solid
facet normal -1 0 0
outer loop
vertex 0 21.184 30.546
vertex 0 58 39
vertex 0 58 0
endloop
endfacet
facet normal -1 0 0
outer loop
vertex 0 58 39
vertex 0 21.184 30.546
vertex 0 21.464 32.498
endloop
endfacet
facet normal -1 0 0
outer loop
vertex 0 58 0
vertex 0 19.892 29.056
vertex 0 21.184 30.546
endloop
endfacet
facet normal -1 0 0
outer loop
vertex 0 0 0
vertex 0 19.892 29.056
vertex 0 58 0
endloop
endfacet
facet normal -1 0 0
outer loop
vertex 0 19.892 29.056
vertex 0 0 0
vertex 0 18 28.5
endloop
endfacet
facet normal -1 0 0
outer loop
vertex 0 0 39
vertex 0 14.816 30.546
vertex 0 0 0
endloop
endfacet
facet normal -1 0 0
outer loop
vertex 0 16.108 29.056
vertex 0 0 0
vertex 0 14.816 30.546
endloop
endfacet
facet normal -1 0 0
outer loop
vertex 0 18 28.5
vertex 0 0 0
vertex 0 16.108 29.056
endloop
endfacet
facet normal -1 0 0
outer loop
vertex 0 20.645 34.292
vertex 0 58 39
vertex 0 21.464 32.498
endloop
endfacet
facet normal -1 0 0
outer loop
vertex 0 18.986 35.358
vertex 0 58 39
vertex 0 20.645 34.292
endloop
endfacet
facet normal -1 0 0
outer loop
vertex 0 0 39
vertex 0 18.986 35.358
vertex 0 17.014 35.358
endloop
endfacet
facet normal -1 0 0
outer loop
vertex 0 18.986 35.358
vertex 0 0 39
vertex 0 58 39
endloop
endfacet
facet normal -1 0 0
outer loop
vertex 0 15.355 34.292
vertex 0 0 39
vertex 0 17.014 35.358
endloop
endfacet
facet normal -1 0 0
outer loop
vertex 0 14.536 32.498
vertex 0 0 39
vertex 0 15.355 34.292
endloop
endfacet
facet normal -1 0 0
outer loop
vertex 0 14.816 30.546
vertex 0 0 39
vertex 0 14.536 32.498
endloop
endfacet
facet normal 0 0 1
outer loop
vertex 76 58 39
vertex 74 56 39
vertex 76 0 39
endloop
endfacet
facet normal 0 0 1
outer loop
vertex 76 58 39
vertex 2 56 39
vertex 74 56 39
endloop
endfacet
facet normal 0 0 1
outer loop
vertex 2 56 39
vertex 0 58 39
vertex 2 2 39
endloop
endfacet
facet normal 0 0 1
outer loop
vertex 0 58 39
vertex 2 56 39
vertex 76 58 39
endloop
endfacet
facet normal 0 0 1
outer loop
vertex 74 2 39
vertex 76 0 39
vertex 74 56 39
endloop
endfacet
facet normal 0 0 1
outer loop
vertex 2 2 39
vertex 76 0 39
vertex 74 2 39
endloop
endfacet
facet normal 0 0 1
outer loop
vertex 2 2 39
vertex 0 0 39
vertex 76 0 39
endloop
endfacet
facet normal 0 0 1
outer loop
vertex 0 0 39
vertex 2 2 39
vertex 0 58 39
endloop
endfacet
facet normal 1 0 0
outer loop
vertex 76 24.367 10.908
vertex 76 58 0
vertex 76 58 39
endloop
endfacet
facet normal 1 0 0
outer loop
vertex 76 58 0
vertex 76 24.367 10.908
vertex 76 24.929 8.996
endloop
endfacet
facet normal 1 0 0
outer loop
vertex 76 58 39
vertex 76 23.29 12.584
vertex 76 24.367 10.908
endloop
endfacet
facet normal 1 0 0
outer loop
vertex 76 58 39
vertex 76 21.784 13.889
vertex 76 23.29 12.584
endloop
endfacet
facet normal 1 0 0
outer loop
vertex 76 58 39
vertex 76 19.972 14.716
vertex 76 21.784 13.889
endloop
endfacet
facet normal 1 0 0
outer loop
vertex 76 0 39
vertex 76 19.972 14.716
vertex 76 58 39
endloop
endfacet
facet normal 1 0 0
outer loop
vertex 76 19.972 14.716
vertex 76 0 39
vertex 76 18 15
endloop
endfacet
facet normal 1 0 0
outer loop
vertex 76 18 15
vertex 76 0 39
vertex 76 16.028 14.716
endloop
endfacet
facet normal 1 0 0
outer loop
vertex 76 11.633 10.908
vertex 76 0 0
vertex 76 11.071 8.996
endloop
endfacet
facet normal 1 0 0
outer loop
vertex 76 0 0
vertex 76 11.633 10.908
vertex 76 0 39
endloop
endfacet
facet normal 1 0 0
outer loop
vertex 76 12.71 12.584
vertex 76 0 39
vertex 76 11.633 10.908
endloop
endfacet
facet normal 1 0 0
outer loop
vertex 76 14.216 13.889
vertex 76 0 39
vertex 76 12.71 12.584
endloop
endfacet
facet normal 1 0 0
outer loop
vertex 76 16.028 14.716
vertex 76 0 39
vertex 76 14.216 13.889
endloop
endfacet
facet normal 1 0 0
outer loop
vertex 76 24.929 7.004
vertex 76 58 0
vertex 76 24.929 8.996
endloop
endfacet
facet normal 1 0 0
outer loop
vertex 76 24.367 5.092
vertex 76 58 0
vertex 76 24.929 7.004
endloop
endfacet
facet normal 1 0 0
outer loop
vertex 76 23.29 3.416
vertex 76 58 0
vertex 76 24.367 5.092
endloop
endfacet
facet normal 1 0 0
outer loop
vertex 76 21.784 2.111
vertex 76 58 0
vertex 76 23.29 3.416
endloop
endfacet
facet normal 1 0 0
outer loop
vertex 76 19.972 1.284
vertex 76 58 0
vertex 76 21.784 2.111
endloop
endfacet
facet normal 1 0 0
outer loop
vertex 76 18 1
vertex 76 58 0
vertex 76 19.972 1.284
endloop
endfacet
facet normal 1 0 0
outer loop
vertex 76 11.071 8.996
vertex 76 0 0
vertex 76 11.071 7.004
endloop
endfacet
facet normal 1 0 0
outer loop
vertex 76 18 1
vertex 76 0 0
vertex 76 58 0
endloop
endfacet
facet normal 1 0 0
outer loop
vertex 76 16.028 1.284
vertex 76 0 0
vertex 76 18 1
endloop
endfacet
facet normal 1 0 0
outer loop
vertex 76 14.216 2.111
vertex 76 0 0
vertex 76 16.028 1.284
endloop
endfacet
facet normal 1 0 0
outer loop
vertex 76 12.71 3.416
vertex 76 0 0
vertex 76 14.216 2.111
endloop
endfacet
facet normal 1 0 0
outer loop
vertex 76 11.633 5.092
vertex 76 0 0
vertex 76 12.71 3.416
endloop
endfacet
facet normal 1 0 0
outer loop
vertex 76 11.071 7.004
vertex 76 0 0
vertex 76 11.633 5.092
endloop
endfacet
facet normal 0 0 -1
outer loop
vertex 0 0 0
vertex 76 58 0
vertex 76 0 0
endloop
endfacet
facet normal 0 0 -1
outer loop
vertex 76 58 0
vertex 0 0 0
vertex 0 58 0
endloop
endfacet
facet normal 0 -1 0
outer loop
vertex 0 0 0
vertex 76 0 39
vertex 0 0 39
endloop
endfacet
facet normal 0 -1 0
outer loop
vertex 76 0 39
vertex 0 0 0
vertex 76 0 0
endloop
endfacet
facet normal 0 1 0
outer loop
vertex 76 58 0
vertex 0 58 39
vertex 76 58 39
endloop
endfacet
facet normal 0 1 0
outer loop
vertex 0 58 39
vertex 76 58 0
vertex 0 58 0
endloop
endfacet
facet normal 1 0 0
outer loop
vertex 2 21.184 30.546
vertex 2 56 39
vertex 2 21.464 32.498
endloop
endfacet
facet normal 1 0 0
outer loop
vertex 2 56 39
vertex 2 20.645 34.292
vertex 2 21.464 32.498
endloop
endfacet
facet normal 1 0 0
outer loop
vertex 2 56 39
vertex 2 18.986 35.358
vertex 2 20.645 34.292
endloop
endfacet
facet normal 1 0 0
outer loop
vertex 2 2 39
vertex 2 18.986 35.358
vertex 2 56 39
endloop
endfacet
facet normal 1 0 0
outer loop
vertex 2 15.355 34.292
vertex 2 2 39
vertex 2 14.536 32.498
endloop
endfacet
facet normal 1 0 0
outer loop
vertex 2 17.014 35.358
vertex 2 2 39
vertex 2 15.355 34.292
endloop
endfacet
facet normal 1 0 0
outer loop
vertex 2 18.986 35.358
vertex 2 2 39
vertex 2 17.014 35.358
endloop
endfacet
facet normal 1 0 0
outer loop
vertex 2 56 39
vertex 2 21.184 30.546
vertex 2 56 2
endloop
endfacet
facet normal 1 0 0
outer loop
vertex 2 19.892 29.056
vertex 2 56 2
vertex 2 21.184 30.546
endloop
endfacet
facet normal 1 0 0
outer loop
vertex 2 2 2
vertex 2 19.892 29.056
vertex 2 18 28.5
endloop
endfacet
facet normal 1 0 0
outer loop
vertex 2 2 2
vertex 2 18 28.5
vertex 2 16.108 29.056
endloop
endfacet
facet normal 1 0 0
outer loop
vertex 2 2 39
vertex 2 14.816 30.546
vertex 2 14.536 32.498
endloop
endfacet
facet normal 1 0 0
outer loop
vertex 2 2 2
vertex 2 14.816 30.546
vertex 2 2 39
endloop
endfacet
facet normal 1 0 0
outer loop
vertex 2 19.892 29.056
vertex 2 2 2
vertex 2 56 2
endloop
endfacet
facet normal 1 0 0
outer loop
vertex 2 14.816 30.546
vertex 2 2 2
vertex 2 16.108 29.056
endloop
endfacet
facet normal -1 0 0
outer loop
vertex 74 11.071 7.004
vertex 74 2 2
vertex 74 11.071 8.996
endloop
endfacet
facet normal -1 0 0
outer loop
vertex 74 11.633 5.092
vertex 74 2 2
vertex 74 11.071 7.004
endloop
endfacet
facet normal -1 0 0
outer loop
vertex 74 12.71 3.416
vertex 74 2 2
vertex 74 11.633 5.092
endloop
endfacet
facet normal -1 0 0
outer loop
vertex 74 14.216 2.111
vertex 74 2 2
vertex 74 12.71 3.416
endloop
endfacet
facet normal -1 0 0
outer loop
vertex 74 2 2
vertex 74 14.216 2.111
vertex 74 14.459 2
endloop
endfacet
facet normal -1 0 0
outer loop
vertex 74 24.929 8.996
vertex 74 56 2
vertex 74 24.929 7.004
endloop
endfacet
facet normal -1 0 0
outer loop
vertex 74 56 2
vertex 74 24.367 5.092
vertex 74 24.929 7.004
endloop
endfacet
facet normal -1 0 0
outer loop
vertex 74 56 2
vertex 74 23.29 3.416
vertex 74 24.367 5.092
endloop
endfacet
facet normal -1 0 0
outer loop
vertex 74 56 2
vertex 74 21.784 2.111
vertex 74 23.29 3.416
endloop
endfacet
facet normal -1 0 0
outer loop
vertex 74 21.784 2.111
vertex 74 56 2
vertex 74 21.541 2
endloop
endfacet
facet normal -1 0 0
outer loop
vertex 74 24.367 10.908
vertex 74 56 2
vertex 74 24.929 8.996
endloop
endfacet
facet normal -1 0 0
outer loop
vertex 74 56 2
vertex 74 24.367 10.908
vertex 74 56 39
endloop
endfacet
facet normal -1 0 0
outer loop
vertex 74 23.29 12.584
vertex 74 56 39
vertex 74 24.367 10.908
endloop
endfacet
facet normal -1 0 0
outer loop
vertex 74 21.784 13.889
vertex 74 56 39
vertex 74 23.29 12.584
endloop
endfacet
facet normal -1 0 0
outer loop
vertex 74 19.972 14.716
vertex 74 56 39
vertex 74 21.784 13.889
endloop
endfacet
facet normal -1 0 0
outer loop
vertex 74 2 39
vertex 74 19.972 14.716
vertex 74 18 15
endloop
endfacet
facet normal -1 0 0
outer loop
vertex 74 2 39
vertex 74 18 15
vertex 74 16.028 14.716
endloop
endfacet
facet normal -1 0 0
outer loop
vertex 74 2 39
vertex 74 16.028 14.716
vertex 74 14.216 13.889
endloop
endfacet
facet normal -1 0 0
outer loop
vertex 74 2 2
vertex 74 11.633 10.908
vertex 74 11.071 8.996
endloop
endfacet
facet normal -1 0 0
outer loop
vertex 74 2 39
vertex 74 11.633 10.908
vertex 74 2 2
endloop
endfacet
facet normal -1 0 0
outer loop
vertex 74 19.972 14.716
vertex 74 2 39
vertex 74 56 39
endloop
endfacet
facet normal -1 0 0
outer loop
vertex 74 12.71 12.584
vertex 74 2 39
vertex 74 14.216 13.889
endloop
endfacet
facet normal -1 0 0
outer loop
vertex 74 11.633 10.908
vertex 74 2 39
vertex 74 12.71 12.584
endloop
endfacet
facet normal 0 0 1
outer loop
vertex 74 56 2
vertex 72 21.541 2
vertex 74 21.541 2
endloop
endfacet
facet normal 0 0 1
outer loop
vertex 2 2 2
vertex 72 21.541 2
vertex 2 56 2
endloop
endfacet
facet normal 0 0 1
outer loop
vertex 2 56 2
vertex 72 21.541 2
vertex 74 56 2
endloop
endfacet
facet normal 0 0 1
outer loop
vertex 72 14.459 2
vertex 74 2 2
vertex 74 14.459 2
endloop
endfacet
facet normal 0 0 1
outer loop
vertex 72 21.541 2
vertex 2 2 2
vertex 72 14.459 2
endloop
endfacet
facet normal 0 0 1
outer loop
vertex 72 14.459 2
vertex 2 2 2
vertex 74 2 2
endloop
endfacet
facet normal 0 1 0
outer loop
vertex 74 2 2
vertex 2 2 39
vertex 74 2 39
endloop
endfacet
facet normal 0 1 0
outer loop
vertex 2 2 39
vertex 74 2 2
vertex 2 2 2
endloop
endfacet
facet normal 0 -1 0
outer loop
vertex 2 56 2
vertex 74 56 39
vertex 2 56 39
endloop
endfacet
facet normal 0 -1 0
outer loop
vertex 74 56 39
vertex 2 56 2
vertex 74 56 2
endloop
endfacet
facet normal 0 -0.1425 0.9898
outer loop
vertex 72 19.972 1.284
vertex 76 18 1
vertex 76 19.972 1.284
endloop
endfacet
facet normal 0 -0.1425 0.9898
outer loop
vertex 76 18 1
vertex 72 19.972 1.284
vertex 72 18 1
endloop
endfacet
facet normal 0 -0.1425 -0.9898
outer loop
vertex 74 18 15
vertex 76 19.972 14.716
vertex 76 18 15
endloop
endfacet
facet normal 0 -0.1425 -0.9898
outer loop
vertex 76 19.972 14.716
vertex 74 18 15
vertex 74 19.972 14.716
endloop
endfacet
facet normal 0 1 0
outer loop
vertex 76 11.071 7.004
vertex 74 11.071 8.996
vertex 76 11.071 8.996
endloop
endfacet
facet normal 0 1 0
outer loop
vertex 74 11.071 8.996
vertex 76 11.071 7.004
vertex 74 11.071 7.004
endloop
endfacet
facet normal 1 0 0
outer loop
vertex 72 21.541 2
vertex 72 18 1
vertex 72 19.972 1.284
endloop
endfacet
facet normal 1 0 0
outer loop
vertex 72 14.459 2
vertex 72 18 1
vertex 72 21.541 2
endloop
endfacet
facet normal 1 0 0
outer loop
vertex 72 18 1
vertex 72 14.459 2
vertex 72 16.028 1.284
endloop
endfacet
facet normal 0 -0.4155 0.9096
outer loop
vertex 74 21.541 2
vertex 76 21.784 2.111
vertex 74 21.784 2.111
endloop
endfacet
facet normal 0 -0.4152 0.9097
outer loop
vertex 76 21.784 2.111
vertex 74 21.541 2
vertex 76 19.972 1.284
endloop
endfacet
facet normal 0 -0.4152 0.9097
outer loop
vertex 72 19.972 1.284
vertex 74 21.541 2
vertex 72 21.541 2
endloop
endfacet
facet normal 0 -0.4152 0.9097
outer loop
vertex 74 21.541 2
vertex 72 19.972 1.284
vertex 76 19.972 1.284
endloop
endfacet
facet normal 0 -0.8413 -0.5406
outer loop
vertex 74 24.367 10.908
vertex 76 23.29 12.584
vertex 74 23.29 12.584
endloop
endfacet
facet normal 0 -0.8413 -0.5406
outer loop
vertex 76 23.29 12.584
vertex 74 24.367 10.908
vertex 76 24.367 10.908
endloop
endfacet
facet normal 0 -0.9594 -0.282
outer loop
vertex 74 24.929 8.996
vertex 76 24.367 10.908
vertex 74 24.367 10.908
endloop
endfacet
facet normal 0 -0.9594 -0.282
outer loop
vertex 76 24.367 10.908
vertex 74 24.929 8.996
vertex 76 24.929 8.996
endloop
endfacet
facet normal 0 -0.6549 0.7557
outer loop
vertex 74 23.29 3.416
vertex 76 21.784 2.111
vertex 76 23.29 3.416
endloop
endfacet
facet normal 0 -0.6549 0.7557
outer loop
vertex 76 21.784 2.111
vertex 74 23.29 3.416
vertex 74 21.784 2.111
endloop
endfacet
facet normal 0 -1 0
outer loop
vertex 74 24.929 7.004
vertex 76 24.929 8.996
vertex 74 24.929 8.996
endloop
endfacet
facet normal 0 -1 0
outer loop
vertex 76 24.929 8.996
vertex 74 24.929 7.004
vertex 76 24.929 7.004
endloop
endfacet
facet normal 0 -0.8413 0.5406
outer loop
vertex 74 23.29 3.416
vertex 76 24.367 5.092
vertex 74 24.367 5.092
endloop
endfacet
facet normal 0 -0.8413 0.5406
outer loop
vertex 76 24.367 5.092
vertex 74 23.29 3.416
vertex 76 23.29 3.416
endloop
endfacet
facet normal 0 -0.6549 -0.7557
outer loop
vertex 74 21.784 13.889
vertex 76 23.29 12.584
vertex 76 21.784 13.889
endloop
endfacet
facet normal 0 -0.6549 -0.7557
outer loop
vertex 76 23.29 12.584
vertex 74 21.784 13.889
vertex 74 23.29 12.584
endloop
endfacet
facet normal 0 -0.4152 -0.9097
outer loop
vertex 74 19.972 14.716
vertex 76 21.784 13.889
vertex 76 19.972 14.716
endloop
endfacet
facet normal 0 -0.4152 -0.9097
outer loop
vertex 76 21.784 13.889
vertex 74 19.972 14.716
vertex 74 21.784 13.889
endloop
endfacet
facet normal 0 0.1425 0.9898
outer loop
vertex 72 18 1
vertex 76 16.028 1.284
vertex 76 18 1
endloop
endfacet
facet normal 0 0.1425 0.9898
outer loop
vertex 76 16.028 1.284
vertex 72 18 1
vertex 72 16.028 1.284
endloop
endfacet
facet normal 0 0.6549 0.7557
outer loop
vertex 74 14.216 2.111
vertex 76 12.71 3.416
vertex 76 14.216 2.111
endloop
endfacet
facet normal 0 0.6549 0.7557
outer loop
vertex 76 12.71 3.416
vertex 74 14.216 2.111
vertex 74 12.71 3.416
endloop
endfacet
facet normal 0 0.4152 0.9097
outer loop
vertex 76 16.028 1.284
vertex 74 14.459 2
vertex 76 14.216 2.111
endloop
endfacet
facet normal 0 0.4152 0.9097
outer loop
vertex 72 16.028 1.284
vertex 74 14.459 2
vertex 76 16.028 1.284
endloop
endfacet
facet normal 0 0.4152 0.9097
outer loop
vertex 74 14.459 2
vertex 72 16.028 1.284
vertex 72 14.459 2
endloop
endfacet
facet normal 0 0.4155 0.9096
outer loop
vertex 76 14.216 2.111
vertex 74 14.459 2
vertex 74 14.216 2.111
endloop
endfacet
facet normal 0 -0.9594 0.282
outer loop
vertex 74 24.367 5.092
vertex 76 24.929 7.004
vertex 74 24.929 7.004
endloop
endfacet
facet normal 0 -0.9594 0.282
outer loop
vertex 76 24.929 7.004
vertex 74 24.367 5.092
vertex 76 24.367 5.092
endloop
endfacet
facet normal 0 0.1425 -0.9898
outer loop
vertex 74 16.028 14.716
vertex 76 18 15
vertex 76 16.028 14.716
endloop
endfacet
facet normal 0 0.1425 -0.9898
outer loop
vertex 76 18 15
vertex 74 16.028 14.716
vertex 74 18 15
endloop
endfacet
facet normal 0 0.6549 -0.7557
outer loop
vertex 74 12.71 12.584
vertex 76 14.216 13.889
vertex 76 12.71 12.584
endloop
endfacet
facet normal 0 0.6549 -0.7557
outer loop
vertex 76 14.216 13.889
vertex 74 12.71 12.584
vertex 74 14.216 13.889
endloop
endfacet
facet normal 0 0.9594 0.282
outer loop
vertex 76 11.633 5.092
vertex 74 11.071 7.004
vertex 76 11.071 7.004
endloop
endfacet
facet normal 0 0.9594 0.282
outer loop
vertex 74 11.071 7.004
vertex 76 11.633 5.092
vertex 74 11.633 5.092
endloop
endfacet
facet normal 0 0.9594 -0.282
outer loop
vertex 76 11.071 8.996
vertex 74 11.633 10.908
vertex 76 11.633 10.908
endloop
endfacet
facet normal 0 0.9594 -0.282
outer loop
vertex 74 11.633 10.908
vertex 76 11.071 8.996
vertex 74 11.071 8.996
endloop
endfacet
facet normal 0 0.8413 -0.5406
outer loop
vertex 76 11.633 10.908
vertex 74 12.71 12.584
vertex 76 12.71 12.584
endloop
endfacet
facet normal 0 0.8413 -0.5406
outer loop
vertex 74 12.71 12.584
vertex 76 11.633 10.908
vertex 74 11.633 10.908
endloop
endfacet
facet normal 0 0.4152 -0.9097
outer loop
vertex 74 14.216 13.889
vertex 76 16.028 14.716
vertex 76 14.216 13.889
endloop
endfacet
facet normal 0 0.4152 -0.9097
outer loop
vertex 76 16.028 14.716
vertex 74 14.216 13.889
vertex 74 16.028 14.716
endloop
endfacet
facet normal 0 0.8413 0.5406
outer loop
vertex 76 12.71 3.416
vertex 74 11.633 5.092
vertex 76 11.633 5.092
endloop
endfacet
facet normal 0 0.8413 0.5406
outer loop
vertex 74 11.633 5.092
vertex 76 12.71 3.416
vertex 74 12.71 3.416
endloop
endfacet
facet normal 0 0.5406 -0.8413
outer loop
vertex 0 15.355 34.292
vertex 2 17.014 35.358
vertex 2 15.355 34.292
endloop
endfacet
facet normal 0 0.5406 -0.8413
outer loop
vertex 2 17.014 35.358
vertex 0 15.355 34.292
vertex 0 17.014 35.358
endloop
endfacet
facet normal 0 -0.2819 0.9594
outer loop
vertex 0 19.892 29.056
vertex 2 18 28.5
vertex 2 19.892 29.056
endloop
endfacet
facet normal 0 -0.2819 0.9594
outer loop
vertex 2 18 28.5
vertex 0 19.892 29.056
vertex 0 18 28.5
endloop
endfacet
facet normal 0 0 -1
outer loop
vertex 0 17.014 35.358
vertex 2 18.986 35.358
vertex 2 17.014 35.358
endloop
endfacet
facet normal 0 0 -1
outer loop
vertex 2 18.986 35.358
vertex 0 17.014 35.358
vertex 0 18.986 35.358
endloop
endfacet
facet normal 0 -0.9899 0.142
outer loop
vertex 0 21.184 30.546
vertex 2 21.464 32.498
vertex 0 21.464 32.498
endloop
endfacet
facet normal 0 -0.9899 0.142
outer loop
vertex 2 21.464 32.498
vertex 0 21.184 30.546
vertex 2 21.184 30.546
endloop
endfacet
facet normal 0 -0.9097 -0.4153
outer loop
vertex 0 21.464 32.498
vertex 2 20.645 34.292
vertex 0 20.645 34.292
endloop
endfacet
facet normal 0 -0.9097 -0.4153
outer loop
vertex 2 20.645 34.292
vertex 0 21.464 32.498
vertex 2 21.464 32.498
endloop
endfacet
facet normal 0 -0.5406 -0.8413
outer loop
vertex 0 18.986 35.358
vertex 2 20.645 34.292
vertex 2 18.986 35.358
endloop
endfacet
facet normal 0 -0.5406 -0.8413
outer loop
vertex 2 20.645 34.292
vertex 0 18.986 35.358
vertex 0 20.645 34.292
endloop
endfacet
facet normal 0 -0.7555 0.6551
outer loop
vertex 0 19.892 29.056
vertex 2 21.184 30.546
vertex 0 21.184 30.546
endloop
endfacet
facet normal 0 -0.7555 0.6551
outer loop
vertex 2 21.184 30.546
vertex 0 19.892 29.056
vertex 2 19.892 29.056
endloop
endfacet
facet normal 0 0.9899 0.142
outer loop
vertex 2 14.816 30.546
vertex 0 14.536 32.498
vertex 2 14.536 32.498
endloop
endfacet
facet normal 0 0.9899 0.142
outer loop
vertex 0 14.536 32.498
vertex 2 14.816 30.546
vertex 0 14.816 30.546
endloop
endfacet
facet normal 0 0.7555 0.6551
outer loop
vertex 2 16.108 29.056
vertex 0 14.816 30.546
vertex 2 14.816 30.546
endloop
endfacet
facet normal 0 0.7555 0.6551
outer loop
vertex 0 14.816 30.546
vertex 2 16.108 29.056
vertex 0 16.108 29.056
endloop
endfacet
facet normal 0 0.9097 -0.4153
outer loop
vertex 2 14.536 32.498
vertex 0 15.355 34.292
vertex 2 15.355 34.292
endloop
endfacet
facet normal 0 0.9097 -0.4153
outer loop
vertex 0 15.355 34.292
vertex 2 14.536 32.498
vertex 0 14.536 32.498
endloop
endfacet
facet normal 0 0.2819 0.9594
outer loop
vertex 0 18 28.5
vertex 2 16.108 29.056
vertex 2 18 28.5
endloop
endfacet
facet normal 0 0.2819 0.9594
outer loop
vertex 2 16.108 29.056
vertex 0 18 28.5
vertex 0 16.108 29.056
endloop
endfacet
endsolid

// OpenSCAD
box_height=37;

arduino_length=72;
arduino_width=54;
arduino_height=24;
arduino_power_plug_width=16;
arduino_power_plug_height=6;
arduino_power_plug_radius=7;


tube_diameter=7;

// Which side the sensor
sensor_width=16;
sensor_height=30;

thickness=2;

difference() {
	cube([arduino_length + 2 * thickness, arduino_width + 2 * thickness, box_height + thickness]);
	translate ([thickness, thickness, thickness]) cube([arduino_length, arduino_width, box_height]);

	translate([arduino_length, arduino_power_plug_width + 1 * thickness, arduino_power_plug_height + thickness]) rotate([0, 90, 0]) cylinder(2 * thickness, r=arduino_power_plug_radius);
        translate([-1, sensor_width + 1 * thickness, sensor_height + thickness]) rotate([0, 90, 0]) cylinder(2 * thickness, r=tube_diameter/2);
}
